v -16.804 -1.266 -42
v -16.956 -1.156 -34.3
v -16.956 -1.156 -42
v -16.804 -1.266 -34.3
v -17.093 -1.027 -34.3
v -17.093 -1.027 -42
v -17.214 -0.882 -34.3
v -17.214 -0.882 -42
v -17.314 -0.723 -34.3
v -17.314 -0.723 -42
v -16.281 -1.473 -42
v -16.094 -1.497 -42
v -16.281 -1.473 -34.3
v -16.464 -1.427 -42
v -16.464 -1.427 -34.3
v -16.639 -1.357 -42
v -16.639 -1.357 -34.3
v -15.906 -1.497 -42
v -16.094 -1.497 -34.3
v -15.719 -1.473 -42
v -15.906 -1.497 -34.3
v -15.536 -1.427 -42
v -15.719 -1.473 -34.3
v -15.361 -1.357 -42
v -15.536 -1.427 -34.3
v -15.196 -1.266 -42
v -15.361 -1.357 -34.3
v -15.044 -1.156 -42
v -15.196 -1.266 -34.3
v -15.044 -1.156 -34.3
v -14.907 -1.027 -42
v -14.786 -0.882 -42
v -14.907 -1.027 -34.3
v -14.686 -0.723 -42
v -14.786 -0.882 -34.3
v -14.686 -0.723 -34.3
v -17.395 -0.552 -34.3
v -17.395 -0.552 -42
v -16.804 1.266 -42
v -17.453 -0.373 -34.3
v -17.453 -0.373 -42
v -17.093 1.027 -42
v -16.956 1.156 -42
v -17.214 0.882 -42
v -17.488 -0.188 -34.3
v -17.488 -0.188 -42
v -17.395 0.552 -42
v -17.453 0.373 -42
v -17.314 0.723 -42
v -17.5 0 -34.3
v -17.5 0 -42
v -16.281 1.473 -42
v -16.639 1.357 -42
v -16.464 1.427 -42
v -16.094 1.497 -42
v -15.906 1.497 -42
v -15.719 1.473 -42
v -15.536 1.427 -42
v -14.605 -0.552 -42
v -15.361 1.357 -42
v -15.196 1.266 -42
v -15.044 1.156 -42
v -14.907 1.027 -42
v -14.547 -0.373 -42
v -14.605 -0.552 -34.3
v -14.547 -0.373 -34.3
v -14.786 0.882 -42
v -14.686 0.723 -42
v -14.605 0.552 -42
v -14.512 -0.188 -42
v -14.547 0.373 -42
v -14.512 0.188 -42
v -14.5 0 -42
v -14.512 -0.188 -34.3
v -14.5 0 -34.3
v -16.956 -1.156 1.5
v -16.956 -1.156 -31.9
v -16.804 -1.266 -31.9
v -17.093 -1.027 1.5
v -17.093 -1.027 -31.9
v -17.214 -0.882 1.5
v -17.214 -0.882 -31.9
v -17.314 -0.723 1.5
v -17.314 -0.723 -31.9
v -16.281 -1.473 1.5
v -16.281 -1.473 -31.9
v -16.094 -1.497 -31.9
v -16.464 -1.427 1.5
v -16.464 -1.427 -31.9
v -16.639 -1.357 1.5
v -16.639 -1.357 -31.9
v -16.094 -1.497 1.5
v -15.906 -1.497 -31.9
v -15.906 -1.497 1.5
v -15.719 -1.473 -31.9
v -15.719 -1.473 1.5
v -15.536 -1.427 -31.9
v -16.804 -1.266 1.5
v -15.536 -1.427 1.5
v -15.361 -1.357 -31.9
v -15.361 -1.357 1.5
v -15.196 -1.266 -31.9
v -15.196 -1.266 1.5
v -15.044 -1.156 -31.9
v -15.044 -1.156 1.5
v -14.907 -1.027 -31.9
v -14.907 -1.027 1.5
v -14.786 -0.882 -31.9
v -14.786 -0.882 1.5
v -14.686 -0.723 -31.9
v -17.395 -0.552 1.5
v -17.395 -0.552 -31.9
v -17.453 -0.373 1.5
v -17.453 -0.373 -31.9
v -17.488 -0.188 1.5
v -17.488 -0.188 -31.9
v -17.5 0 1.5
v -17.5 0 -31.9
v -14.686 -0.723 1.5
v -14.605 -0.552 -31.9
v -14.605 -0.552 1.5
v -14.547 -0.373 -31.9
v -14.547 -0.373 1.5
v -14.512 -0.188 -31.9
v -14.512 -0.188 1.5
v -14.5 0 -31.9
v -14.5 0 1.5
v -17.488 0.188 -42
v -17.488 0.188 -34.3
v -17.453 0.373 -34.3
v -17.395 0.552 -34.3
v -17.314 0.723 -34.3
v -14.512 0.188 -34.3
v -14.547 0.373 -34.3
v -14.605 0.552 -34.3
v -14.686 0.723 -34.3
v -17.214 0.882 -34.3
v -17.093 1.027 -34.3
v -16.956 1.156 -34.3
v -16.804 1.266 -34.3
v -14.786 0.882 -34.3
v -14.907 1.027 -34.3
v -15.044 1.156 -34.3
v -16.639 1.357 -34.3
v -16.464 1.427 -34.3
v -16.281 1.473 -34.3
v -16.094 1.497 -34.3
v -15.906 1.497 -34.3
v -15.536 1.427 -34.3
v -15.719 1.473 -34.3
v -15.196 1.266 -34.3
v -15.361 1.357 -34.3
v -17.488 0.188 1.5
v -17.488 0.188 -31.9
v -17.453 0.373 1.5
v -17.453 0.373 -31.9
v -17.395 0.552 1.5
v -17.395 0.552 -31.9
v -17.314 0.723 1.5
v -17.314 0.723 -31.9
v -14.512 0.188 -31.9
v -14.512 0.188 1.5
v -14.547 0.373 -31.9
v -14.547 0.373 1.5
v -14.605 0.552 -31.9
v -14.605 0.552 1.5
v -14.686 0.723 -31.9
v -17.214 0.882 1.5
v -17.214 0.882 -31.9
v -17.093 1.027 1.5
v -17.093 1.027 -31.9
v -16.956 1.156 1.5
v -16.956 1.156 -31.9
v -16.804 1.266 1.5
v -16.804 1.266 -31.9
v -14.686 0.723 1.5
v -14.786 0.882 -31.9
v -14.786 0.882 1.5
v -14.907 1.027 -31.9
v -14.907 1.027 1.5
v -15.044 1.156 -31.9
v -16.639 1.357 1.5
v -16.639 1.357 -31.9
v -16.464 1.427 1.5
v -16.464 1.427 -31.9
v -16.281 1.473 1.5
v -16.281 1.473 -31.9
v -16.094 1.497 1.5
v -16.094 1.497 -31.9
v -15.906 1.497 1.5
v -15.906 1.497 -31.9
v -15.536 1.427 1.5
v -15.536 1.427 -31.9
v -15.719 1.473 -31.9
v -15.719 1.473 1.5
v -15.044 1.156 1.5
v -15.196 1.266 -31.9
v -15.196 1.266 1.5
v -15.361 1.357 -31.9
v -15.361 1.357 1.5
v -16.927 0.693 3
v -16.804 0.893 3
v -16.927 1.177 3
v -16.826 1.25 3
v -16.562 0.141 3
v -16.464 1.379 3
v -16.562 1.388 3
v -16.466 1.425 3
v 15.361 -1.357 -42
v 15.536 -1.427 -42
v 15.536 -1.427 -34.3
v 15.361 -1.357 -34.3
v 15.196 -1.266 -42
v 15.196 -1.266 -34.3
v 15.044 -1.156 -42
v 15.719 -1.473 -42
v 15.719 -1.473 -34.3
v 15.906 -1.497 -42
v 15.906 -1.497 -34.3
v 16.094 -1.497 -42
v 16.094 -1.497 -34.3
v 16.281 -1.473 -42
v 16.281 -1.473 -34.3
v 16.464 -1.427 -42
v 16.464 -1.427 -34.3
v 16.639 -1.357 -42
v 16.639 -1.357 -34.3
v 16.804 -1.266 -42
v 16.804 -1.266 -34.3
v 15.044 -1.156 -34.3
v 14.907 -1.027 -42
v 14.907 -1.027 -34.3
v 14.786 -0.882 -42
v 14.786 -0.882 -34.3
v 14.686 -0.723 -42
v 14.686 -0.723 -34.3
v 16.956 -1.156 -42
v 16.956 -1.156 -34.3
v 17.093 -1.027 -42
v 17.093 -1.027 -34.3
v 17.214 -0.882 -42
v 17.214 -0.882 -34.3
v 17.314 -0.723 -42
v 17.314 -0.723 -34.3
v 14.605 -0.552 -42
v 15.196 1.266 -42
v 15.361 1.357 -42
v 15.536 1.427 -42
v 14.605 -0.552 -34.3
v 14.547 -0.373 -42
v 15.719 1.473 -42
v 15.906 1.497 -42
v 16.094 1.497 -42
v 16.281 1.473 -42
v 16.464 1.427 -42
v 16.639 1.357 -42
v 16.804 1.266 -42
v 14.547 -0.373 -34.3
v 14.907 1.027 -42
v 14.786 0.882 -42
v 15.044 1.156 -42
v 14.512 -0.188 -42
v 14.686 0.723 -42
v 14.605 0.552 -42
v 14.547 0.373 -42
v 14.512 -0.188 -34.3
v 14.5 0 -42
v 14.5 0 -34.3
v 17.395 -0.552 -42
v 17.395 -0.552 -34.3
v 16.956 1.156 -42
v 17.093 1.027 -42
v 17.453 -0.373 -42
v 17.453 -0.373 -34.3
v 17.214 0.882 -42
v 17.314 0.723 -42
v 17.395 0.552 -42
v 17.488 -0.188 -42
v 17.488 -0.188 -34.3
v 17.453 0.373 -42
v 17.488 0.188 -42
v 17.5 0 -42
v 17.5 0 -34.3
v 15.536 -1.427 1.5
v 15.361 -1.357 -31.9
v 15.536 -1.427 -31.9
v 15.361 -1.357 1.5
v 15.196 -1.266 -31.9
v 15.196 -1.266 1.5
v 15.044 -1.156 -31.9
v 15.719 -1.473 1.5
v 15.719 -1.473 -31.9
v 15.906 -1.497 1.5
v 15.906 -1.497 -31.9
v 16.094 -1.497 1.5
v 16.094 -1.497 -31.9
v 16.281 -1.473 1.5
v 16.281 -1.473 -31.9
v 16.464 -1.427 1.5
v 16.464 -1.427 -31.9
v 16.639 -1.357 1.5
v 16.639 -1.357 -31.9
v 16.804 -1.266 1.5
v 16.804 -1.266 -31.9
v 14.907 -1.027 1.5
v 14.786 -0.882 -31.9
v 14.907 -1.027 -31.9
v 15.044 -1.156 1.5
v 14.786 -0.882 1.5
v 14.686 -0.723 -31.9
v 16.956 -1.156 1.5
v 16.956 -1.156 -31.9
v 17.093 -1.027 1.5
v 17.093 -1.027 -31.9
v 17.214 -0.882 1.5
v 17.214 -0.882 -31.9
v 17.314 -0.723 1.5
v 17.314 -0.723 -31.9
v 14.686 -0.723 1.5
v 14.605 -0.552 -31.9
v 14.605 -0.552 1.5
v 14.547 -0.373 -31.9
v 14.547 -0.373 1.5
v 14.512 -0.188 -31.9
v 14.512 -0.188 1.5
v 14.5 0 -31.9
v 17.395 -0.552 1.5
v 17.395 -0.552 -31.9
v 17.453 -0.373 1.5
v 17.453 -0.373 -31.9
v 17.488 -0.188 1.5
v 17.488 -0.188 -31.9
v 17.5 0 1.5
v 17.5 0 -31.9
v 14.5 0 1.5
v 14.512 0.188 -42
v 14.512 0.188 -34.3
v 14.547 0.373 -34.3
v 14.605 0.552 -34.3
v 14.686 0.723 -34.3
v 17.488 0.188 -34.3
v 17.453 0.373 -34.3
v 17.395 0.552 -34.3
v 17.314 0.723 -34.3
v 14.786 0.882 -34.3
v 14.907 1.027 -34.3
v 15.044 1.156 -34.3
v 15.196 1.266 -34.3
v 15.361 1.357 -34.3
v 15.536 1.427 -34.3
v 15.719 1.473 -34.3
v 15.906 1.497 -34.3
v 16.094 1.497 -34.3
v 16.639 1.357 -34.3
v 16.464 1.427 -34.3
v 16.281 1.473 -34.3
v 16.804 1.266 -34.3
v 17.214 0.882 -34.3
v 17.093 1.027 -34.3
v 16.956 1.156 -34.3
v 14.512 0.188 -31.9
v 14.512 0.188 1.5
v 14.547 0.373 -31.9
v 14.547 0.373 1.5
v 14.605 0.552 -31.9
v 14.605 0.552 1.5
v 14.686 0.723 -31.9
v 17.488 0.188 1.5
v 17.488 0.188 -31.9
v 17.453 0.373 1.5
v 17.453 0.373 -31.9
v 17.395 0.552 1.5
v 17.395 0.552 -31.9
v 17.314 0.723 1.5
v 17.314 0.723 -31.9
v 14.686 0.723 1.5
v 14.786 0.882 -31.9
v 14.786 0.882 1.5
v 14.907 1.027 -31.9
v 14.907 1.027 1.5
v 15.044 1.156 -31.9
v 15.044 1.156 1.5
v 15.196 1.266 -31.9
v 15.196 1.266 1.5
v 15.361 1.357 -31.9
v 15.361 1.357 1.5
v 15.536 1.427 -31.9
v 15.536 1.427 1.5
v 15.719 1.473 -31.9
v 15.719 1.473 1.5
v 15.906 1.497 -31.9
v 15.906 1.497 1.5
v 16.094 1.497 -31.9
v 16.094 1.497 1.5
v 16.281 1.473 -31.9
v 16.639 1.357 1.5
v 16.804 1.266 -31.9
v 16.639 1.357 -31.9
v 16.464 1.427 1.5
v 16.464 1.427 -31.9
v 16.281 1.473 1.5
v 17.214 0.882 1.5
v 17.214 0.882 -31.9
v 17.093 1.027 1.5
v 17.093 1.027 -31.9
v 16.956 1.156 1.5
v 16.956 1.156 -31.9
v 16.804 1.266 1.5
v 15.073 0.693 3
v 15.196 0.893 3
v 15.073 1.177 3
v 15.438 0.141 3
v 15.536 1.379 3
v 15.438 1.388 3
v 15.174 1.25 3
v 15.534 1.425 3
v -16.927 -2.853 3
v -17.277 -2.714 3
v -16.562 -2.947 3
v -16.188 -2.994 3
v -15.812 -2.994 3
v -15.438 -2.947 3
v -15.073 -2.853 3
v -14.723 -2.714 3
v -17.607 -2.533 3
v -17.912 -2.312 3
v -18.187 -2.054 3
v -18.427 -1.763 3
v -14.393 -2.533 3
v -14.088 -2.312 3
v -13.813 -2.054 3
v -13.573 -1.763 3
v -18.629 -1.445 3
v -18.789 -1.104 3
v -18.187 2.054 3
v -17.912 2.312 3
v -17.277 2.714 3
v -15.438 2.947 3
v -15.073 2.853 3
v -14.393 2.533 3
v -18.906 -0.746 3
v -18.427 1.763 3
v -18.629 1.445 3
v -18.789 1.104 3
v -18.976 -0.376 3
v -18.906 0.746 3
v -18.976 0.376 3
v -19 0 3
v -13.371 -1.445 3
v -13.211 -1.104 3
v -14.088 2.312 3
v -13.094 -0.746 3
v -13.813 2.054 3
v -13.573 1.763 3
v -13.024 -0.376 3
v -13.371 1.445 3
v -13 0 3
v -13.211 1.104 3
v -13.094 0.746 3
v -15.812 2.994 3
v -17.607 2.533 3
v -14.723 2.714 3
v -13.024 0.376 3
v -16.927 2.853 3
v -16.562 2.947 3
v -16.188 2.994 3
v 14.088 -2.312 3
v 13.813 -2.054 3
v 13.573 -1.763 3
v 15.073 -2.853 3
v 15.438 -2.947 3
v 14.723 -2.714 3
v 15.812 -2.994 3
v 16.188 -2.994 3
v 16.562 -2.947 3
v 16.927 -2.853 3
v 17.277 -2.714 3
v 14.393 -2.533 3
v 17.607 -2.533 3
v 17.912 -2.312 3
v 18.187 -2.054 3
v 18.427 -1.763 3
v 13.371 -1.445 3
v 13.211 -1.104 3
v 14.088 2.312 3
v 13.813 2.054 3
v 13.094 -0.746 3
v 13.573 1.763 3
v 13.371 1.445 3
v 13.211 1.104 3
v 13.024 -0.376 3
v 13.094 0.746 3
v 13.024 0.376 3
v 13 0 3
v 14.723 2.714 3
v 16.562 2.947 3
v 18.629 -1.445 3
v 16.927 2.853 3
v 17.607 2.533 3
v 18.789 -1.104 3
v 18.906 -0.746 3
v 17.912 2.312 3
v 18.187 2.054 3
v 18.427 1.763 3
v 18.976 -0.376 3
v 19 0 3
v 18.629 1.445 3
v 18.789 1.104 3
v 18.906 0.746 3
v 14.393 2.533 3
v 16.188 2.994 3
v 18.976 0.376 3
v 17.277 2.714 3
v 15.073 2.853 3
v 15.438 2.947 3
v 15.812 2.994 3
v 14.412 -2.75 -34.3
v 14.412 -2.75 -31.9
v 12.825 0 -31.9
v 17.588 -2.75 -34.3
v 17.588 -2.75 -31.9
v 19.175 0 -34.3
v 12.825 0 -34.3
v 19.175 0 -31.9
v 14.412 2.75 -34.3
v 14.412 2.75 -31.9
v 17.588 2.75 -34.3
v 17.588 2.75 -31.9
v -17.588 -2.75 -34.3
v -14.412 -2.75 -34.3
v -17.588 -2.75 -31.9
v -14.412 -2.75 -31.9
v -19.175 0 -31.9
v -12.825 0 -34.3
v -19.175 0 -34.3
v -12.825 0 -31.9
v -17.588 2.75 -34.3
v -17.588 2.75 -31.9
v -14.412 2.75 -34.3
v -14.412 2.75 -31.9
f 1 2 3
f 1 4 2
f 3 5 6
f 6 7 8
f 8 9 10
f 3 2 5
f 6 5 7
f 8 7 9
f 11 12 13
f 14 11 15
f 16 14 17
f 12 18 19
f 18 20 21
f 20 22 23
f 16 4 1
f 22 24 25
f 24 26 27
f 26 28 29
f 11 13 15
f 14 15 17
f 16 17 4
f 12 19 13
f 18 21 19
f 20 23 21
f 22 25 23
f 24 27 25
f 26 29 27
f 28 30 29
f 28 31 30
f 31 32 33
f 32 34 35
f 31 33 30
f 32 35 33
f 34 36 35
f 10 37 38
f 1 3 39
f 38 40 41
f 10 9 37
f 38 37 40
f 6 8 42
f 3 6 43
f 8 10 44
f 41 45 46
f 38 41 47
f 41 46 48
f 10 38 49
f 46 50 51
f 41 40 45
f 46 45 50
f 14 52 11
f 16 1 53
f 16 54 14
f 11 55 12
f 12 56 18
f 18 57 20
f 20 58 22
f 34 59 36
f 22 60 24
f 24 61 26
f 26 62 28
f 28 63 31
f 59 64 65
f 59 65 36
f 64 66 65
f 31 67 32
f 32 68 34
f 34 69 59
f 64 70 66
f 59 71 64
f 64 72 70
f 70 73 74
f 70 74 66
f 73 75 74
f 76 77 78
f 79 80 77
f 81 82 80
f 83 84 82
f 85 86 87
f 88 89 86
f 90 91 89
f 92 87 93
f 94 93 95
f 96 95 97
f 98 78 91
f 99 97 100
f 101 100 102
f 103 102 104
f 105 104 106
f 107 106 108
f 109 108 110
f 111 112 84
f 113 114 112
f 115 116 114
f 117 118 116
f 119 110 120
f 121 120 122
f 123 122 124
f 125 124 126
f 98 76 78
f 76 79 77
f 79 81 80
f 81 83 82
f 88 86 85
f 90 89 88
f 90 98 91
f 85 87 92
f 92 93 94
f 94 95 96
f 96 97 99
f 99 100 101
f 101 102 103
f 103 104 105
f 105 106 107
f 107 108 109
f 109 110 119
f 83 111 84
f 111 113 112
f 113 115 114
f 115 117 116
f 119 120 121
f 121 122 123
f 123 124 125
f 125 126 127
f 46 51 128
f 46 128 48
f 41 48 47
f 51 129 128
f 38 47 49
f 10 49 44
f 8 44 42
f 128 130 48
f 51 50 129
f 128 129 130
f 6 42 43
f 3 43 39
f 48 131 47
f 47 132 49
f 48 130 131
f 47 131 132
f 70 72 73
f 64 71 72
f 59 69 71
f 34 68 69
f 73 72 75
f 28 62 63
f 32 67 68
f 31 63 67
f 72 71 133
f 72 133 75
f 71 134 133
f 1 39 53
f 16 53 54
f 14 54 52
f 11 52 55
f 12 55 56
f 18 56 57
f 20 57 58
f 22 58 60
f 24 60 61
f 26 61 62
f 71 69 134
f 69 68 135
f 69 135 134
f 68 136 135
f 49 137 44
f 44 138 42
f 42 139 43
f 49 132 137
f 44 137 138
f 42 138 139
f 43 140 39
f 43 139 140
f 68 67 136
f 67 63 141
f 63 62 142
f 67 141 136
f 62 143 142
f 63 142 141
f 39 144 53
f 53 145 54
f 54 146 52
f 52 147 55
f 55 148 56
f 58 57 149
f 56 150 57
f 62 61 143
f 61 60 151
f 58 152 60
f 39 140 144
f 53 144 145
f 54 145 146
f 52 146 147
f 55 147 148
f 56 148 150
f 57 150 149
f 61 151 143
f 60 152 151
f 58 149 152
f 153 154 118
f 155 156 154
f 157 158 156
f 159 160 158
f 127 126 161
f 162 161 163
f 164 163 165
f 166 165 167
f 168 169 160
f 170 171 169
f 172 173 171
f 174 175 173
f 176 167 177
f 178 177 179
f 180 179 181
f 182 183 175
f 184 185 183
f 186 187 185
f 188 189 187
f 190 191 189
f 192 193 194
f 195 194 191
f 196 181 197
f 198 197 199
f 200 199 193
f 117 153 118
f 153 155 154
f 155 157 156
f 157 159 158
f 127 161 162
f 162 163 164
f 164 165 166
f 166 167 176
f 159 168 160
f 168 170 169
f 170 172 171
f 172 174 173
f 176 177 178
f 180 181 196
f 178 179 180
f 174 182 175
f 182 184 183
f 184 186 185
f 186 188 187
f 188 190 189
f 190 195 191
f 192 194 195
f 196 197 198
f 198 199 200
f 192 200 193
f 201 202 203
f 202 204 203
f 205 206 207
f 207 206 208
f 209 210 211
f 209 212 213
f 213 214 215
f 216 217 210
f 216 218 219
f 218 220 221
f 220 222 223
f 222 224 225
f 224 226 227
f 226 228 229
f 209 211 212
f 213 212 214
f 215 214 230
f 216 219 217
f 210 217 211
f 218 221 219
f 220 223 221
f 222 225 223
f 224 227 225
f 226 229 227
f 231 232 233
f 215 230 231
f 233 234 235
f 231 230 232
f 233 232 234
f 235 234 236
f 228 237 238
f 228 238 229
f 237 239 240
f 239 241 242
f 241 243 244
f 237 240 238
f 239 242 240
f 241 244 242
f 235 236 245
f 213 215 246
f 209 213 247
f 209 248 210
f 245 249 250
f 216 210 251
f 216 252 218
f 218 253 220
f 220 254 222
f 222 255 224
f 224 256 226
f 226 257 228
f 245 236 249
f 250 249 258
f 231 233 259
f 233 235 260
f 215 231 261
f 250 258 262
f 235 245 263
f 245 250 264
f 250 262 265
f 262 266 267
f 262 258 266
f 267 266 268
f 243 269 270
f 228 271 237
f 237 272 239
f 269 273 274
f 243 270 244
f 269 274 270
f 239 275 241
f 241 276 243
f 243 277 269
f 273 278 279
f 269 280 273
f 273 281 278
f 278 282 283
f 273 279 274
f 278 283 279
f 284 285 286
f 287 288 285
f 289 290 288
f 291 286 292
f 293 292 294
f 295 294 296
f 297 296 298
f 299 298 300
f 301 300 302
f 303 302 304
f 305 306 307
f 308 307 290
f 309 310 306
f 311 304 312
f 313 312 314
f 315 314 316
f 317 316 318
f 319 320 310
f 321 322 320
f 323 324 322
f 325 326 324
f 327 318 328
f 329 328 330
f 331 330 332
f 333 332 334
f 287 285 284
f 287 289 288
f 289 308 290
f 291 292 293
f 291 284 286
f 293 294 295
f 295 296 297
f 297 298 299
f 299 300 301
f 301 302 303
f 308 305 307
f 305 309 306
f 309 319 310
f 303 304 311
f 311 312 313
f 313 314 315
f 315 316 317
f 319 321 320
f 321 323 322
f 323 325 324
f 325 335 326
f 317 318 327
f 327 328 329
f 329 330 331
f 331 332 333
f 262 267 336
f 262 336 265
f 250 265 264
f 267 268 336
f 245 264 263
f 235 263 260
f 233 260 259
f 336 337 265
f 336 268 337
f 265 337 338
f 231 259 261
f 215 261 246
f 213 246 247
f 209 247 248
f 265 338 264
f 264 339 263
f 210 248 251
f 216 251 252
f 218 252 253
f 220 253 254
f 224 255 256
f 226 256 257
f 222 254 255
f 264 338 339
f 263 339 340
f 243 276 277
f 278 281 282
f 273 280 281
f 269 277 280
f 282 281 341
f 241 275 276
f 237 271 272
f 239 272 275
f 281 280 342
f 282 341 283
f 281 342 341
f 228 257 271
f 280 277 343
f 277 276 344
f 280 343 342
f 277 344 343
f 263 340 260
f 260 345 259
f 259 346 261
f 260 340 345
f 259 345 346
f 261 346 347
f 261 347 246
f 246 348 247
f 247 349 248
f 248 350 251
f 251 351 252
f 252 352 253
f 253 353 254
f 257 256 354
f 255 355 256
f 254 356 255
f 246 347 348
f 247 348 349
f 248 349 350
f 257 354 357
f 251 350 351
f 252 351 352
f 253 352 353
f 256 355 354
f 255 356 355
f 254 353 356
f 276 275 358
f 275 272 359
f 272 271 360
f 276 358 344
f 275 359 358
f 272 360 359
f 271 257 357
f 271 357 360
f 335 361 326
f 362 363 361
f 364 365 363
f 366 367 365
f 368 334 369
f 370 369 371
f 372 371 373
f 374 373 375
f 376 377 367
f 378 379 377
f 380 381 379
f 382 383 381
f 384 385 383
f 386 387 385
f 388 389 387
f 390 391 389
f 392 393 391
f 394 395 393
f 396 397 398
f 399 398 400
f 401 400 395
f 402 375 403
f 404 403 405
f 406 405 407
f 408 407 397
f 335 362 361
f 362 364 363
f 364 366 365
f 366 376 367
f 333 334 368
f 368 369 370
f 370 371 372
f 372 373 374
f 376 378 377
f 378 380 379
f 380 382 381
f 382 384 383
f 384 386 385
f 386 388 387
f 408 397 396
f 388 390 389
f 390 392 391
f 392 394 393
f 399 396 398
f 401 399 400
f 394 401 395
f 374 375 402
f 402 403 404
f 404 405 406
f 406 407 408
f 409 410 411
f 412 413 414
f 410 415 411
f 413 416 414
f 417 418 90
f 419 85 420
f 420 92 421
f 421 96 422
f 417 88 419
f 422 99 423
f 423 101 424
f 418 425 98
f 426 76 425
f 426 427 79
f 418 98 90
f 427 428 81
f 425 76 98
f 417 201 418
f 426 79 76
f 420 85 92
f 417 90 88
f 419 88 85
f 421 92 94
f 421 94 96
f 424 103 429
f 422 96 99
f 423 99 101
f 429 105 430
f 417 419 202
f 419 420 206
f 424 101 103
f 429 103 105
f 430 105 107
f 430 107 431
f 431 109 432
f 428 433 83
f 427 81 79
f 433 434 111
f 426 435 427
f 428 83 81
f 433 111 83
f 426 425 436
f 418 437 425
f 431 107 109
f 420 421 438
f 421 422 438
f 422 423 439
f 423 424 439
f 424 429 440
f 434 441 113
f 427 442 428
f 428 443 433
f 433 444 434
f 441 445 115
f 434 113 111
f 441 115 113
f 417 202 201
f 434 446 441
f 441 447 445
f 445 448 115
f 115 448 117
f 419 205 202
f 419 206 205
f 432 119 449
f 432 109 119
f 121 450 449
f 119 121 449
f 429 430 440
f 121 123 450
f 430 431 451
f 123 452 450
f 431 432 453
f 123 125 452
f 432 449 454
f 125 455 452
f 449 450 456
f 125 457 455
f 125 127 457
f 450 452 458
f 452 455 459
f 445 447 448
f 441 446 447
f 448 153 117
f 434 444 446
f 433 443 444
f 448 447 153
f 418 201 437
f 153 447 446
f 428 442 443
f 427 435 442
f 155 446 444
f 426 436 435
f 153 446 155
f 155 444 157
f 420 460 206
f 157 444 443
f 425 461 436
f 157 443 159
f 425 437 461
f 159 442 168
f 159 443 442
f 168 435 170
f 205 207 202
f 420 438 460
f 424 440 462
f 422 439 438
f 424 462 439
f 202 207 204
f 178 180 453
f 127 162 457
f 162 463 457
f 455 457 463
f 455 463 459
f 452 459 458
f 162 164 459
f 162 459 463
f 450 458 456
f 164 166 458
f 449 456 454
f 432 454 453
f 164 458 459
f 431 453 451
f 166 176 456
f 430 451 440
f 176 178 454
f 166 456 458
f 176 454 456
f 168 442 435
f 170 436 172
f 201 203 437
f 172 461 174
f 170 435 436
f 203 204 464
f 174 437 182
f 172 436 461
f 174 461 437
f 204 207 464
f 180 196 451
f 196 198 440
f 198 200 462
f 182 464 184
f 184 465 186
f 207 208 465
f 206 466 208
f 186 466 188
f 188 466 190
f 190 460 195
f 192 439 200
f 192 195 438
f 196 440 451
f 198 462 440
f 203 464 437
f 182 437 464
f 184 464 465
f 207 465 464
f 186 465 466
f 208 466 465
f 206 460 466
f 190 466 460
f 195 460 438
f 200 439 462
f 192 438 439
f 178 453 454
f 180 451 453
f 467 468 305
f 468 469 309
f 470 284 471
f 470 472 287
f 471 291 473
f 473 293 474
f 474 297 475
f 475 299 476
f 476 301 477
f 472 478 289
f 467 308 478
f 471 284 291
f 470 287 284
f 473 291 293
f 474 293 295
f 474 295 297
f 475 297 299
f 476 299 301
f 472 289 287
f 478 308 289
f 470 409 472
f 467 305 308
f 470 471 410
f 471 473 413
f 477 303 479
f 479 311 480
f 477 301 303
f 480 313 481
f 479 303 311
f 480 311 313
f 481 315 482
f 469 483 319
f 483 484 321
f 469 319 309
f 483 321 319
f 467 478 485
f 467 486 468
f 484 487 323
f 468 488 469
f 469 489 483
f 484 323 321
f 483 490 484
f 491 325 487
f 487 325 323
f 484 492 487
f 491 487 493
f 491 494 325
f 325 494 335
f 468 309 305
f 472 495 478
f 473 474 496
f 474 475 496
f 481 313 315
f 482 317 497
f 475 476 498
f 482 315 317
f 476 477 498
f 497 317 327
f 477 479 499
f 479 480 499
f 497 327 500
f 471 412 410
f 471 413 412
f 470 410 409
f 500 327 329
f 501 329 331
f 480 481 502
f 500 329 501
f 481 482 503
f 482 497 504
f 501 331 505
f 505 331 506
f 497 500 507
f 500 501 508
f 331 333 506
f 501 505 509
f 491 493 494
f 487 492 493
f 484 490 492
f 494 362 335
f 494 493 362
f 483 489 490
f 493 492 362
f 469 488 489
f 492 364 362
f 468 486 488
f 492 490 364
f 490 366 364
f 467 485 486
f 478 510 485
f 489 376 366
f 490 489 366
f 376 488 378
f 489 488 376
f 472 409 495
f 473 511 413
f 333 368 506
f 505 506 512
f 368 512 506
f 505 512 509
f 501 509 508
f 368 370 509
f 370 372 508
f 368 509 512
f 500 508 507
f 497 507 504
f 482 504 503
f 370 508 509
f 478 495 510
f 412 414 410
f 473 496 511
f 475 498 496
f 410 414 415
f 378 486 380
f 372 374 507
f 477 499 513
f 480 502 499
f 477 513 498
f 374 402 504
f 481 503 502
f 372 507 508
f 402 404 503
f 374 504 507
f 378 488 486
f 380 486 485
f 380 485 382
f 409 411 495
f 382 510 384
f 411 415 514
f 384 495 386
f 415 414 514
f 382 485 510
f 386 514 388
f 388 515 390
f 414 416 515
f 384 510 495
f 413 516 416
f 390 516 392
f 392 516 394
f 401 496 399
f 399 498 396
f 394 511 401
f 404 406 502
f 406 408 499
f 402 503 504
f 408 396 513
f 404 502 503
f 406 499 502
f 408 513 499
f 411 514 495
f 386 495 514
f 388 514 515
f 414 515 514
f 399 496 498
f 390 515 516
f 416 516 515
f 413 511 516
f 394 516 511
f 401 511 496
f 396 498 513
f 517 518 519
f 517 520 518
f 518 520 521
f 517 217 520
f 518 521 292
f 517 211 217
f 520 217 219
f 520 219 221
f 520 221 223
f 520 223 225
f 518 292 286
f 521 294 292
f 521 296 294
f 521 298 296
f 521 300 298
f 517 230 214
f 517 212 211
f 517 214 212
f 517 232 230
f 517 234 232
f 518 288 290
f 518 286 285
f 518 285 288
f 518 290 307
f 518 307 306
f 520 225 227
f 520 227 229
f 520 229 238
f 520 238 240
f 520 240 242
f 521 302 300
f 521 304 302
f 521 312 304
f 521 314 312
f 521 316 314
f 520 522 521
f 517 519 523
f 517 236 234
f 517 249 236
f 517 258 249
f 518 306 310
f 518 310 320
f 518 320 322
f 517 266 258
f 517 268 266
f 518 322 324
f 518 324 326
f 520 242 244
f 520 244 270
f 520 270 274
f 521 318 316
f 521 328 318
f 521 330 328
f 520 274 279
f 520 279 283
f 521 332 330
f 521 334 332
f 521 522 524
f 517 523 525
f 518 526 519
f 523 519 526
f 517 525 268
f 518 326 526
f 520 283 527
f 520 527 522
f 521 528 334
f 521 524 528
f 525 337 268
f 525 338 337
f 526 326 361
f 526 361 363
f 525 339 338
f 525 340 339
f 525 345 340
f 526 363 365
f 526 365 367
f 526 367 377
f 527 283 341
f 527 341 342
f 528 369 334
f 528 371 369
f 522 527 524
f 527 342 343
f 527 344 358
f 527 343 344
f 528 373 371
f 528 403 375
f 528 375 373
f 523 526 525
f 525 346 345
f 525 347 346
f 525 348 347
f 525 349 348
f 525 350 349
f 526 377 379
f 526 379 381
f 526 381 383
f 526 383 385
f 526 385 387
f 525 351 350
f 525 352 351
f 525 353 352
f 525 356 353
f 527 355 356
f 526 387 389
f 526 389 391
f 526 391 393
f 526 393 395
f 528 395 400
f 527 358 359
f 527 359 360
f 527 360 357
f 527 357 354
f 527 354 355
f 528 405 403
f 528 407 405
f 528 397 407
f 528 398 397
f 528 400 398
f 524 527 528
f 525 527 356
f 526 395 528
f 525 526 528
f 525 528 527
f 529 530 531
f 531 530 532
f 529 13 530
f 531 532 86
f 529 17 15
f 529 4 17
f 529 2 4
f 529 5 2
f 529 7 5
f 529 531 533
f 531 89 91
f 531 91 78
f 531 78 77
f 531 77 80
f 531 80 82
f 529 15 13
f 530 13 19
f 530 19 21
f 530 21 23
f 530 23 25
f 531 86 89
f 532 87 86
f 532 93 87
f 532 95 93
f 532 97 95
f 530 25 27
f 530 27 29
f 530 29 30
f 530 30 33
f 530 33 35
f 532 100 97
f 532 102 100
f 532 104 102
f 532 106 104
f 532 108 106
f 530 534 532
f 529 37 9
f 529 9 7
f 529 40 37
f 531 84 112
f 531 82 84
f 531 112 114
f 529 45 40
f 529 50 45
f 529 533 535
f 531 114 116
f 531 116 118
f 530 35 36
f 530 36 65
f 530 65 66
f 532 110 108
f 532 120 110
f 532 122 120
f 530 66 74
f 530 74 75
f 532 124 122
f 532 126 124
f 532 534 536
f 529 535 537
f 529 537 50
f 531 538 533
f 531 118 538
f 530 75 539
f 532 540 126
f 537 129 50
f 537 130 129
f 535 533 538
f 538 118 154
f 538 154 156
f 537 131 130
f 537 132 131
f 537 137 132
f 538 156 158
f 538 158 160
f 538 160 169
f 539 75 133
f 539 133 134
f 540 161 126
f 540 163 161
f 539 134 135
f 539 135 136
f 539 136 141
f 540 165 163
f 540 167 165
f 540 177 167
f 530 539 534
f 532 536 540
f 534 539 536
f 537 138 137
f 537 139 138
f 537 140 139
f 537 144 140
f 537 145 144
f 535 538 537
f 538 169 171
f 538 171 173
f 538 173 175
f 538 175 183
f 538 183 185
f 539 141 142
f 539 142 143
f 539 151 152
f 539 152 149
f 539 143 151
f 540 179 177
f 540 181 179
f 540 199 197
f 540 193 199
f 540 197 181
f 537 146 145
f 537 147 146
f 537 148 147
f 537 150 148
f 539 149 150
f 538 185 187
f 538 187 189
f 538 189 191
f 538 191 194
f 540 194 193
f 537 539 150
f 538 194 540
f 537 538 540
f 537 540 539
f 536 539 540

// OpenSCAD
$fn = 50;

difference() {
	union() {
		translate(v = [-16, 0, 3]) {
			rotate(a = [0, 0, 0]) {
				difference() {
					union() {
						translate(v = [0, 0, -45.0]) {
							cylinder(h = 45, r = 1.5);
						}
						translate(v = [0, 0, -1.5]) {
							cylinder(h = 1.5, r1 = 1.5, r2 = 3);
						}
					}
					union();
				}
			}
		}
		translate(v = [-16, 0, -34.3]) {
			rotate(a = [0, 0, 0]) {
				difference() {
					union() {
						linear_extrude(height = 2.4) {
							polygon(points = [[3.1754264805429417, 0.0], [1.5877132402714713, 2.75], [-1.5877132402714702, 2.7500000000000004], [-3.1754264805429417, 3.888775875324659e-16], [-1.5877132402714722, -2.7499999999999996], [1.5877132402714687, -2.7500000000000013]]);
						}
					}
					union();
				}
			}
		}
		translate(v = [16, 0, 3]) {
			rotate(a = [0, 0, 0]) {
				difference() {
					union() {
						translate(v = [0, 0, -45.0]) {
							cylinder(h = 45, r = 1.5);
						}
						translate(v = [0, 0, -1.5]) {
							cylinder(h = 1.5, r1 = 1.5, r2 = 3);
						}
					}
					union();
				}
			}
		}
		translate(v = [16, 0, -34.3]) {
			rotate(a = [0, 0, 0]) {
				difference() {
					union() {
						linear_extrude(height = 2.4) {
							polygon(points = [[3.1754264805429417, 0.0], [1.5877132402714713, 2.75], [-1.5877132402714702, 2.7500000000000004], [-3.1754264805429417, 3.888775875324659e-16], [-1.5877132402714722, -2.7499999999999996], [1.5877132402714687, -2.7500000000000013]]);
						}
					}
					union();
				}
			}
		}
	}
	union();
}
